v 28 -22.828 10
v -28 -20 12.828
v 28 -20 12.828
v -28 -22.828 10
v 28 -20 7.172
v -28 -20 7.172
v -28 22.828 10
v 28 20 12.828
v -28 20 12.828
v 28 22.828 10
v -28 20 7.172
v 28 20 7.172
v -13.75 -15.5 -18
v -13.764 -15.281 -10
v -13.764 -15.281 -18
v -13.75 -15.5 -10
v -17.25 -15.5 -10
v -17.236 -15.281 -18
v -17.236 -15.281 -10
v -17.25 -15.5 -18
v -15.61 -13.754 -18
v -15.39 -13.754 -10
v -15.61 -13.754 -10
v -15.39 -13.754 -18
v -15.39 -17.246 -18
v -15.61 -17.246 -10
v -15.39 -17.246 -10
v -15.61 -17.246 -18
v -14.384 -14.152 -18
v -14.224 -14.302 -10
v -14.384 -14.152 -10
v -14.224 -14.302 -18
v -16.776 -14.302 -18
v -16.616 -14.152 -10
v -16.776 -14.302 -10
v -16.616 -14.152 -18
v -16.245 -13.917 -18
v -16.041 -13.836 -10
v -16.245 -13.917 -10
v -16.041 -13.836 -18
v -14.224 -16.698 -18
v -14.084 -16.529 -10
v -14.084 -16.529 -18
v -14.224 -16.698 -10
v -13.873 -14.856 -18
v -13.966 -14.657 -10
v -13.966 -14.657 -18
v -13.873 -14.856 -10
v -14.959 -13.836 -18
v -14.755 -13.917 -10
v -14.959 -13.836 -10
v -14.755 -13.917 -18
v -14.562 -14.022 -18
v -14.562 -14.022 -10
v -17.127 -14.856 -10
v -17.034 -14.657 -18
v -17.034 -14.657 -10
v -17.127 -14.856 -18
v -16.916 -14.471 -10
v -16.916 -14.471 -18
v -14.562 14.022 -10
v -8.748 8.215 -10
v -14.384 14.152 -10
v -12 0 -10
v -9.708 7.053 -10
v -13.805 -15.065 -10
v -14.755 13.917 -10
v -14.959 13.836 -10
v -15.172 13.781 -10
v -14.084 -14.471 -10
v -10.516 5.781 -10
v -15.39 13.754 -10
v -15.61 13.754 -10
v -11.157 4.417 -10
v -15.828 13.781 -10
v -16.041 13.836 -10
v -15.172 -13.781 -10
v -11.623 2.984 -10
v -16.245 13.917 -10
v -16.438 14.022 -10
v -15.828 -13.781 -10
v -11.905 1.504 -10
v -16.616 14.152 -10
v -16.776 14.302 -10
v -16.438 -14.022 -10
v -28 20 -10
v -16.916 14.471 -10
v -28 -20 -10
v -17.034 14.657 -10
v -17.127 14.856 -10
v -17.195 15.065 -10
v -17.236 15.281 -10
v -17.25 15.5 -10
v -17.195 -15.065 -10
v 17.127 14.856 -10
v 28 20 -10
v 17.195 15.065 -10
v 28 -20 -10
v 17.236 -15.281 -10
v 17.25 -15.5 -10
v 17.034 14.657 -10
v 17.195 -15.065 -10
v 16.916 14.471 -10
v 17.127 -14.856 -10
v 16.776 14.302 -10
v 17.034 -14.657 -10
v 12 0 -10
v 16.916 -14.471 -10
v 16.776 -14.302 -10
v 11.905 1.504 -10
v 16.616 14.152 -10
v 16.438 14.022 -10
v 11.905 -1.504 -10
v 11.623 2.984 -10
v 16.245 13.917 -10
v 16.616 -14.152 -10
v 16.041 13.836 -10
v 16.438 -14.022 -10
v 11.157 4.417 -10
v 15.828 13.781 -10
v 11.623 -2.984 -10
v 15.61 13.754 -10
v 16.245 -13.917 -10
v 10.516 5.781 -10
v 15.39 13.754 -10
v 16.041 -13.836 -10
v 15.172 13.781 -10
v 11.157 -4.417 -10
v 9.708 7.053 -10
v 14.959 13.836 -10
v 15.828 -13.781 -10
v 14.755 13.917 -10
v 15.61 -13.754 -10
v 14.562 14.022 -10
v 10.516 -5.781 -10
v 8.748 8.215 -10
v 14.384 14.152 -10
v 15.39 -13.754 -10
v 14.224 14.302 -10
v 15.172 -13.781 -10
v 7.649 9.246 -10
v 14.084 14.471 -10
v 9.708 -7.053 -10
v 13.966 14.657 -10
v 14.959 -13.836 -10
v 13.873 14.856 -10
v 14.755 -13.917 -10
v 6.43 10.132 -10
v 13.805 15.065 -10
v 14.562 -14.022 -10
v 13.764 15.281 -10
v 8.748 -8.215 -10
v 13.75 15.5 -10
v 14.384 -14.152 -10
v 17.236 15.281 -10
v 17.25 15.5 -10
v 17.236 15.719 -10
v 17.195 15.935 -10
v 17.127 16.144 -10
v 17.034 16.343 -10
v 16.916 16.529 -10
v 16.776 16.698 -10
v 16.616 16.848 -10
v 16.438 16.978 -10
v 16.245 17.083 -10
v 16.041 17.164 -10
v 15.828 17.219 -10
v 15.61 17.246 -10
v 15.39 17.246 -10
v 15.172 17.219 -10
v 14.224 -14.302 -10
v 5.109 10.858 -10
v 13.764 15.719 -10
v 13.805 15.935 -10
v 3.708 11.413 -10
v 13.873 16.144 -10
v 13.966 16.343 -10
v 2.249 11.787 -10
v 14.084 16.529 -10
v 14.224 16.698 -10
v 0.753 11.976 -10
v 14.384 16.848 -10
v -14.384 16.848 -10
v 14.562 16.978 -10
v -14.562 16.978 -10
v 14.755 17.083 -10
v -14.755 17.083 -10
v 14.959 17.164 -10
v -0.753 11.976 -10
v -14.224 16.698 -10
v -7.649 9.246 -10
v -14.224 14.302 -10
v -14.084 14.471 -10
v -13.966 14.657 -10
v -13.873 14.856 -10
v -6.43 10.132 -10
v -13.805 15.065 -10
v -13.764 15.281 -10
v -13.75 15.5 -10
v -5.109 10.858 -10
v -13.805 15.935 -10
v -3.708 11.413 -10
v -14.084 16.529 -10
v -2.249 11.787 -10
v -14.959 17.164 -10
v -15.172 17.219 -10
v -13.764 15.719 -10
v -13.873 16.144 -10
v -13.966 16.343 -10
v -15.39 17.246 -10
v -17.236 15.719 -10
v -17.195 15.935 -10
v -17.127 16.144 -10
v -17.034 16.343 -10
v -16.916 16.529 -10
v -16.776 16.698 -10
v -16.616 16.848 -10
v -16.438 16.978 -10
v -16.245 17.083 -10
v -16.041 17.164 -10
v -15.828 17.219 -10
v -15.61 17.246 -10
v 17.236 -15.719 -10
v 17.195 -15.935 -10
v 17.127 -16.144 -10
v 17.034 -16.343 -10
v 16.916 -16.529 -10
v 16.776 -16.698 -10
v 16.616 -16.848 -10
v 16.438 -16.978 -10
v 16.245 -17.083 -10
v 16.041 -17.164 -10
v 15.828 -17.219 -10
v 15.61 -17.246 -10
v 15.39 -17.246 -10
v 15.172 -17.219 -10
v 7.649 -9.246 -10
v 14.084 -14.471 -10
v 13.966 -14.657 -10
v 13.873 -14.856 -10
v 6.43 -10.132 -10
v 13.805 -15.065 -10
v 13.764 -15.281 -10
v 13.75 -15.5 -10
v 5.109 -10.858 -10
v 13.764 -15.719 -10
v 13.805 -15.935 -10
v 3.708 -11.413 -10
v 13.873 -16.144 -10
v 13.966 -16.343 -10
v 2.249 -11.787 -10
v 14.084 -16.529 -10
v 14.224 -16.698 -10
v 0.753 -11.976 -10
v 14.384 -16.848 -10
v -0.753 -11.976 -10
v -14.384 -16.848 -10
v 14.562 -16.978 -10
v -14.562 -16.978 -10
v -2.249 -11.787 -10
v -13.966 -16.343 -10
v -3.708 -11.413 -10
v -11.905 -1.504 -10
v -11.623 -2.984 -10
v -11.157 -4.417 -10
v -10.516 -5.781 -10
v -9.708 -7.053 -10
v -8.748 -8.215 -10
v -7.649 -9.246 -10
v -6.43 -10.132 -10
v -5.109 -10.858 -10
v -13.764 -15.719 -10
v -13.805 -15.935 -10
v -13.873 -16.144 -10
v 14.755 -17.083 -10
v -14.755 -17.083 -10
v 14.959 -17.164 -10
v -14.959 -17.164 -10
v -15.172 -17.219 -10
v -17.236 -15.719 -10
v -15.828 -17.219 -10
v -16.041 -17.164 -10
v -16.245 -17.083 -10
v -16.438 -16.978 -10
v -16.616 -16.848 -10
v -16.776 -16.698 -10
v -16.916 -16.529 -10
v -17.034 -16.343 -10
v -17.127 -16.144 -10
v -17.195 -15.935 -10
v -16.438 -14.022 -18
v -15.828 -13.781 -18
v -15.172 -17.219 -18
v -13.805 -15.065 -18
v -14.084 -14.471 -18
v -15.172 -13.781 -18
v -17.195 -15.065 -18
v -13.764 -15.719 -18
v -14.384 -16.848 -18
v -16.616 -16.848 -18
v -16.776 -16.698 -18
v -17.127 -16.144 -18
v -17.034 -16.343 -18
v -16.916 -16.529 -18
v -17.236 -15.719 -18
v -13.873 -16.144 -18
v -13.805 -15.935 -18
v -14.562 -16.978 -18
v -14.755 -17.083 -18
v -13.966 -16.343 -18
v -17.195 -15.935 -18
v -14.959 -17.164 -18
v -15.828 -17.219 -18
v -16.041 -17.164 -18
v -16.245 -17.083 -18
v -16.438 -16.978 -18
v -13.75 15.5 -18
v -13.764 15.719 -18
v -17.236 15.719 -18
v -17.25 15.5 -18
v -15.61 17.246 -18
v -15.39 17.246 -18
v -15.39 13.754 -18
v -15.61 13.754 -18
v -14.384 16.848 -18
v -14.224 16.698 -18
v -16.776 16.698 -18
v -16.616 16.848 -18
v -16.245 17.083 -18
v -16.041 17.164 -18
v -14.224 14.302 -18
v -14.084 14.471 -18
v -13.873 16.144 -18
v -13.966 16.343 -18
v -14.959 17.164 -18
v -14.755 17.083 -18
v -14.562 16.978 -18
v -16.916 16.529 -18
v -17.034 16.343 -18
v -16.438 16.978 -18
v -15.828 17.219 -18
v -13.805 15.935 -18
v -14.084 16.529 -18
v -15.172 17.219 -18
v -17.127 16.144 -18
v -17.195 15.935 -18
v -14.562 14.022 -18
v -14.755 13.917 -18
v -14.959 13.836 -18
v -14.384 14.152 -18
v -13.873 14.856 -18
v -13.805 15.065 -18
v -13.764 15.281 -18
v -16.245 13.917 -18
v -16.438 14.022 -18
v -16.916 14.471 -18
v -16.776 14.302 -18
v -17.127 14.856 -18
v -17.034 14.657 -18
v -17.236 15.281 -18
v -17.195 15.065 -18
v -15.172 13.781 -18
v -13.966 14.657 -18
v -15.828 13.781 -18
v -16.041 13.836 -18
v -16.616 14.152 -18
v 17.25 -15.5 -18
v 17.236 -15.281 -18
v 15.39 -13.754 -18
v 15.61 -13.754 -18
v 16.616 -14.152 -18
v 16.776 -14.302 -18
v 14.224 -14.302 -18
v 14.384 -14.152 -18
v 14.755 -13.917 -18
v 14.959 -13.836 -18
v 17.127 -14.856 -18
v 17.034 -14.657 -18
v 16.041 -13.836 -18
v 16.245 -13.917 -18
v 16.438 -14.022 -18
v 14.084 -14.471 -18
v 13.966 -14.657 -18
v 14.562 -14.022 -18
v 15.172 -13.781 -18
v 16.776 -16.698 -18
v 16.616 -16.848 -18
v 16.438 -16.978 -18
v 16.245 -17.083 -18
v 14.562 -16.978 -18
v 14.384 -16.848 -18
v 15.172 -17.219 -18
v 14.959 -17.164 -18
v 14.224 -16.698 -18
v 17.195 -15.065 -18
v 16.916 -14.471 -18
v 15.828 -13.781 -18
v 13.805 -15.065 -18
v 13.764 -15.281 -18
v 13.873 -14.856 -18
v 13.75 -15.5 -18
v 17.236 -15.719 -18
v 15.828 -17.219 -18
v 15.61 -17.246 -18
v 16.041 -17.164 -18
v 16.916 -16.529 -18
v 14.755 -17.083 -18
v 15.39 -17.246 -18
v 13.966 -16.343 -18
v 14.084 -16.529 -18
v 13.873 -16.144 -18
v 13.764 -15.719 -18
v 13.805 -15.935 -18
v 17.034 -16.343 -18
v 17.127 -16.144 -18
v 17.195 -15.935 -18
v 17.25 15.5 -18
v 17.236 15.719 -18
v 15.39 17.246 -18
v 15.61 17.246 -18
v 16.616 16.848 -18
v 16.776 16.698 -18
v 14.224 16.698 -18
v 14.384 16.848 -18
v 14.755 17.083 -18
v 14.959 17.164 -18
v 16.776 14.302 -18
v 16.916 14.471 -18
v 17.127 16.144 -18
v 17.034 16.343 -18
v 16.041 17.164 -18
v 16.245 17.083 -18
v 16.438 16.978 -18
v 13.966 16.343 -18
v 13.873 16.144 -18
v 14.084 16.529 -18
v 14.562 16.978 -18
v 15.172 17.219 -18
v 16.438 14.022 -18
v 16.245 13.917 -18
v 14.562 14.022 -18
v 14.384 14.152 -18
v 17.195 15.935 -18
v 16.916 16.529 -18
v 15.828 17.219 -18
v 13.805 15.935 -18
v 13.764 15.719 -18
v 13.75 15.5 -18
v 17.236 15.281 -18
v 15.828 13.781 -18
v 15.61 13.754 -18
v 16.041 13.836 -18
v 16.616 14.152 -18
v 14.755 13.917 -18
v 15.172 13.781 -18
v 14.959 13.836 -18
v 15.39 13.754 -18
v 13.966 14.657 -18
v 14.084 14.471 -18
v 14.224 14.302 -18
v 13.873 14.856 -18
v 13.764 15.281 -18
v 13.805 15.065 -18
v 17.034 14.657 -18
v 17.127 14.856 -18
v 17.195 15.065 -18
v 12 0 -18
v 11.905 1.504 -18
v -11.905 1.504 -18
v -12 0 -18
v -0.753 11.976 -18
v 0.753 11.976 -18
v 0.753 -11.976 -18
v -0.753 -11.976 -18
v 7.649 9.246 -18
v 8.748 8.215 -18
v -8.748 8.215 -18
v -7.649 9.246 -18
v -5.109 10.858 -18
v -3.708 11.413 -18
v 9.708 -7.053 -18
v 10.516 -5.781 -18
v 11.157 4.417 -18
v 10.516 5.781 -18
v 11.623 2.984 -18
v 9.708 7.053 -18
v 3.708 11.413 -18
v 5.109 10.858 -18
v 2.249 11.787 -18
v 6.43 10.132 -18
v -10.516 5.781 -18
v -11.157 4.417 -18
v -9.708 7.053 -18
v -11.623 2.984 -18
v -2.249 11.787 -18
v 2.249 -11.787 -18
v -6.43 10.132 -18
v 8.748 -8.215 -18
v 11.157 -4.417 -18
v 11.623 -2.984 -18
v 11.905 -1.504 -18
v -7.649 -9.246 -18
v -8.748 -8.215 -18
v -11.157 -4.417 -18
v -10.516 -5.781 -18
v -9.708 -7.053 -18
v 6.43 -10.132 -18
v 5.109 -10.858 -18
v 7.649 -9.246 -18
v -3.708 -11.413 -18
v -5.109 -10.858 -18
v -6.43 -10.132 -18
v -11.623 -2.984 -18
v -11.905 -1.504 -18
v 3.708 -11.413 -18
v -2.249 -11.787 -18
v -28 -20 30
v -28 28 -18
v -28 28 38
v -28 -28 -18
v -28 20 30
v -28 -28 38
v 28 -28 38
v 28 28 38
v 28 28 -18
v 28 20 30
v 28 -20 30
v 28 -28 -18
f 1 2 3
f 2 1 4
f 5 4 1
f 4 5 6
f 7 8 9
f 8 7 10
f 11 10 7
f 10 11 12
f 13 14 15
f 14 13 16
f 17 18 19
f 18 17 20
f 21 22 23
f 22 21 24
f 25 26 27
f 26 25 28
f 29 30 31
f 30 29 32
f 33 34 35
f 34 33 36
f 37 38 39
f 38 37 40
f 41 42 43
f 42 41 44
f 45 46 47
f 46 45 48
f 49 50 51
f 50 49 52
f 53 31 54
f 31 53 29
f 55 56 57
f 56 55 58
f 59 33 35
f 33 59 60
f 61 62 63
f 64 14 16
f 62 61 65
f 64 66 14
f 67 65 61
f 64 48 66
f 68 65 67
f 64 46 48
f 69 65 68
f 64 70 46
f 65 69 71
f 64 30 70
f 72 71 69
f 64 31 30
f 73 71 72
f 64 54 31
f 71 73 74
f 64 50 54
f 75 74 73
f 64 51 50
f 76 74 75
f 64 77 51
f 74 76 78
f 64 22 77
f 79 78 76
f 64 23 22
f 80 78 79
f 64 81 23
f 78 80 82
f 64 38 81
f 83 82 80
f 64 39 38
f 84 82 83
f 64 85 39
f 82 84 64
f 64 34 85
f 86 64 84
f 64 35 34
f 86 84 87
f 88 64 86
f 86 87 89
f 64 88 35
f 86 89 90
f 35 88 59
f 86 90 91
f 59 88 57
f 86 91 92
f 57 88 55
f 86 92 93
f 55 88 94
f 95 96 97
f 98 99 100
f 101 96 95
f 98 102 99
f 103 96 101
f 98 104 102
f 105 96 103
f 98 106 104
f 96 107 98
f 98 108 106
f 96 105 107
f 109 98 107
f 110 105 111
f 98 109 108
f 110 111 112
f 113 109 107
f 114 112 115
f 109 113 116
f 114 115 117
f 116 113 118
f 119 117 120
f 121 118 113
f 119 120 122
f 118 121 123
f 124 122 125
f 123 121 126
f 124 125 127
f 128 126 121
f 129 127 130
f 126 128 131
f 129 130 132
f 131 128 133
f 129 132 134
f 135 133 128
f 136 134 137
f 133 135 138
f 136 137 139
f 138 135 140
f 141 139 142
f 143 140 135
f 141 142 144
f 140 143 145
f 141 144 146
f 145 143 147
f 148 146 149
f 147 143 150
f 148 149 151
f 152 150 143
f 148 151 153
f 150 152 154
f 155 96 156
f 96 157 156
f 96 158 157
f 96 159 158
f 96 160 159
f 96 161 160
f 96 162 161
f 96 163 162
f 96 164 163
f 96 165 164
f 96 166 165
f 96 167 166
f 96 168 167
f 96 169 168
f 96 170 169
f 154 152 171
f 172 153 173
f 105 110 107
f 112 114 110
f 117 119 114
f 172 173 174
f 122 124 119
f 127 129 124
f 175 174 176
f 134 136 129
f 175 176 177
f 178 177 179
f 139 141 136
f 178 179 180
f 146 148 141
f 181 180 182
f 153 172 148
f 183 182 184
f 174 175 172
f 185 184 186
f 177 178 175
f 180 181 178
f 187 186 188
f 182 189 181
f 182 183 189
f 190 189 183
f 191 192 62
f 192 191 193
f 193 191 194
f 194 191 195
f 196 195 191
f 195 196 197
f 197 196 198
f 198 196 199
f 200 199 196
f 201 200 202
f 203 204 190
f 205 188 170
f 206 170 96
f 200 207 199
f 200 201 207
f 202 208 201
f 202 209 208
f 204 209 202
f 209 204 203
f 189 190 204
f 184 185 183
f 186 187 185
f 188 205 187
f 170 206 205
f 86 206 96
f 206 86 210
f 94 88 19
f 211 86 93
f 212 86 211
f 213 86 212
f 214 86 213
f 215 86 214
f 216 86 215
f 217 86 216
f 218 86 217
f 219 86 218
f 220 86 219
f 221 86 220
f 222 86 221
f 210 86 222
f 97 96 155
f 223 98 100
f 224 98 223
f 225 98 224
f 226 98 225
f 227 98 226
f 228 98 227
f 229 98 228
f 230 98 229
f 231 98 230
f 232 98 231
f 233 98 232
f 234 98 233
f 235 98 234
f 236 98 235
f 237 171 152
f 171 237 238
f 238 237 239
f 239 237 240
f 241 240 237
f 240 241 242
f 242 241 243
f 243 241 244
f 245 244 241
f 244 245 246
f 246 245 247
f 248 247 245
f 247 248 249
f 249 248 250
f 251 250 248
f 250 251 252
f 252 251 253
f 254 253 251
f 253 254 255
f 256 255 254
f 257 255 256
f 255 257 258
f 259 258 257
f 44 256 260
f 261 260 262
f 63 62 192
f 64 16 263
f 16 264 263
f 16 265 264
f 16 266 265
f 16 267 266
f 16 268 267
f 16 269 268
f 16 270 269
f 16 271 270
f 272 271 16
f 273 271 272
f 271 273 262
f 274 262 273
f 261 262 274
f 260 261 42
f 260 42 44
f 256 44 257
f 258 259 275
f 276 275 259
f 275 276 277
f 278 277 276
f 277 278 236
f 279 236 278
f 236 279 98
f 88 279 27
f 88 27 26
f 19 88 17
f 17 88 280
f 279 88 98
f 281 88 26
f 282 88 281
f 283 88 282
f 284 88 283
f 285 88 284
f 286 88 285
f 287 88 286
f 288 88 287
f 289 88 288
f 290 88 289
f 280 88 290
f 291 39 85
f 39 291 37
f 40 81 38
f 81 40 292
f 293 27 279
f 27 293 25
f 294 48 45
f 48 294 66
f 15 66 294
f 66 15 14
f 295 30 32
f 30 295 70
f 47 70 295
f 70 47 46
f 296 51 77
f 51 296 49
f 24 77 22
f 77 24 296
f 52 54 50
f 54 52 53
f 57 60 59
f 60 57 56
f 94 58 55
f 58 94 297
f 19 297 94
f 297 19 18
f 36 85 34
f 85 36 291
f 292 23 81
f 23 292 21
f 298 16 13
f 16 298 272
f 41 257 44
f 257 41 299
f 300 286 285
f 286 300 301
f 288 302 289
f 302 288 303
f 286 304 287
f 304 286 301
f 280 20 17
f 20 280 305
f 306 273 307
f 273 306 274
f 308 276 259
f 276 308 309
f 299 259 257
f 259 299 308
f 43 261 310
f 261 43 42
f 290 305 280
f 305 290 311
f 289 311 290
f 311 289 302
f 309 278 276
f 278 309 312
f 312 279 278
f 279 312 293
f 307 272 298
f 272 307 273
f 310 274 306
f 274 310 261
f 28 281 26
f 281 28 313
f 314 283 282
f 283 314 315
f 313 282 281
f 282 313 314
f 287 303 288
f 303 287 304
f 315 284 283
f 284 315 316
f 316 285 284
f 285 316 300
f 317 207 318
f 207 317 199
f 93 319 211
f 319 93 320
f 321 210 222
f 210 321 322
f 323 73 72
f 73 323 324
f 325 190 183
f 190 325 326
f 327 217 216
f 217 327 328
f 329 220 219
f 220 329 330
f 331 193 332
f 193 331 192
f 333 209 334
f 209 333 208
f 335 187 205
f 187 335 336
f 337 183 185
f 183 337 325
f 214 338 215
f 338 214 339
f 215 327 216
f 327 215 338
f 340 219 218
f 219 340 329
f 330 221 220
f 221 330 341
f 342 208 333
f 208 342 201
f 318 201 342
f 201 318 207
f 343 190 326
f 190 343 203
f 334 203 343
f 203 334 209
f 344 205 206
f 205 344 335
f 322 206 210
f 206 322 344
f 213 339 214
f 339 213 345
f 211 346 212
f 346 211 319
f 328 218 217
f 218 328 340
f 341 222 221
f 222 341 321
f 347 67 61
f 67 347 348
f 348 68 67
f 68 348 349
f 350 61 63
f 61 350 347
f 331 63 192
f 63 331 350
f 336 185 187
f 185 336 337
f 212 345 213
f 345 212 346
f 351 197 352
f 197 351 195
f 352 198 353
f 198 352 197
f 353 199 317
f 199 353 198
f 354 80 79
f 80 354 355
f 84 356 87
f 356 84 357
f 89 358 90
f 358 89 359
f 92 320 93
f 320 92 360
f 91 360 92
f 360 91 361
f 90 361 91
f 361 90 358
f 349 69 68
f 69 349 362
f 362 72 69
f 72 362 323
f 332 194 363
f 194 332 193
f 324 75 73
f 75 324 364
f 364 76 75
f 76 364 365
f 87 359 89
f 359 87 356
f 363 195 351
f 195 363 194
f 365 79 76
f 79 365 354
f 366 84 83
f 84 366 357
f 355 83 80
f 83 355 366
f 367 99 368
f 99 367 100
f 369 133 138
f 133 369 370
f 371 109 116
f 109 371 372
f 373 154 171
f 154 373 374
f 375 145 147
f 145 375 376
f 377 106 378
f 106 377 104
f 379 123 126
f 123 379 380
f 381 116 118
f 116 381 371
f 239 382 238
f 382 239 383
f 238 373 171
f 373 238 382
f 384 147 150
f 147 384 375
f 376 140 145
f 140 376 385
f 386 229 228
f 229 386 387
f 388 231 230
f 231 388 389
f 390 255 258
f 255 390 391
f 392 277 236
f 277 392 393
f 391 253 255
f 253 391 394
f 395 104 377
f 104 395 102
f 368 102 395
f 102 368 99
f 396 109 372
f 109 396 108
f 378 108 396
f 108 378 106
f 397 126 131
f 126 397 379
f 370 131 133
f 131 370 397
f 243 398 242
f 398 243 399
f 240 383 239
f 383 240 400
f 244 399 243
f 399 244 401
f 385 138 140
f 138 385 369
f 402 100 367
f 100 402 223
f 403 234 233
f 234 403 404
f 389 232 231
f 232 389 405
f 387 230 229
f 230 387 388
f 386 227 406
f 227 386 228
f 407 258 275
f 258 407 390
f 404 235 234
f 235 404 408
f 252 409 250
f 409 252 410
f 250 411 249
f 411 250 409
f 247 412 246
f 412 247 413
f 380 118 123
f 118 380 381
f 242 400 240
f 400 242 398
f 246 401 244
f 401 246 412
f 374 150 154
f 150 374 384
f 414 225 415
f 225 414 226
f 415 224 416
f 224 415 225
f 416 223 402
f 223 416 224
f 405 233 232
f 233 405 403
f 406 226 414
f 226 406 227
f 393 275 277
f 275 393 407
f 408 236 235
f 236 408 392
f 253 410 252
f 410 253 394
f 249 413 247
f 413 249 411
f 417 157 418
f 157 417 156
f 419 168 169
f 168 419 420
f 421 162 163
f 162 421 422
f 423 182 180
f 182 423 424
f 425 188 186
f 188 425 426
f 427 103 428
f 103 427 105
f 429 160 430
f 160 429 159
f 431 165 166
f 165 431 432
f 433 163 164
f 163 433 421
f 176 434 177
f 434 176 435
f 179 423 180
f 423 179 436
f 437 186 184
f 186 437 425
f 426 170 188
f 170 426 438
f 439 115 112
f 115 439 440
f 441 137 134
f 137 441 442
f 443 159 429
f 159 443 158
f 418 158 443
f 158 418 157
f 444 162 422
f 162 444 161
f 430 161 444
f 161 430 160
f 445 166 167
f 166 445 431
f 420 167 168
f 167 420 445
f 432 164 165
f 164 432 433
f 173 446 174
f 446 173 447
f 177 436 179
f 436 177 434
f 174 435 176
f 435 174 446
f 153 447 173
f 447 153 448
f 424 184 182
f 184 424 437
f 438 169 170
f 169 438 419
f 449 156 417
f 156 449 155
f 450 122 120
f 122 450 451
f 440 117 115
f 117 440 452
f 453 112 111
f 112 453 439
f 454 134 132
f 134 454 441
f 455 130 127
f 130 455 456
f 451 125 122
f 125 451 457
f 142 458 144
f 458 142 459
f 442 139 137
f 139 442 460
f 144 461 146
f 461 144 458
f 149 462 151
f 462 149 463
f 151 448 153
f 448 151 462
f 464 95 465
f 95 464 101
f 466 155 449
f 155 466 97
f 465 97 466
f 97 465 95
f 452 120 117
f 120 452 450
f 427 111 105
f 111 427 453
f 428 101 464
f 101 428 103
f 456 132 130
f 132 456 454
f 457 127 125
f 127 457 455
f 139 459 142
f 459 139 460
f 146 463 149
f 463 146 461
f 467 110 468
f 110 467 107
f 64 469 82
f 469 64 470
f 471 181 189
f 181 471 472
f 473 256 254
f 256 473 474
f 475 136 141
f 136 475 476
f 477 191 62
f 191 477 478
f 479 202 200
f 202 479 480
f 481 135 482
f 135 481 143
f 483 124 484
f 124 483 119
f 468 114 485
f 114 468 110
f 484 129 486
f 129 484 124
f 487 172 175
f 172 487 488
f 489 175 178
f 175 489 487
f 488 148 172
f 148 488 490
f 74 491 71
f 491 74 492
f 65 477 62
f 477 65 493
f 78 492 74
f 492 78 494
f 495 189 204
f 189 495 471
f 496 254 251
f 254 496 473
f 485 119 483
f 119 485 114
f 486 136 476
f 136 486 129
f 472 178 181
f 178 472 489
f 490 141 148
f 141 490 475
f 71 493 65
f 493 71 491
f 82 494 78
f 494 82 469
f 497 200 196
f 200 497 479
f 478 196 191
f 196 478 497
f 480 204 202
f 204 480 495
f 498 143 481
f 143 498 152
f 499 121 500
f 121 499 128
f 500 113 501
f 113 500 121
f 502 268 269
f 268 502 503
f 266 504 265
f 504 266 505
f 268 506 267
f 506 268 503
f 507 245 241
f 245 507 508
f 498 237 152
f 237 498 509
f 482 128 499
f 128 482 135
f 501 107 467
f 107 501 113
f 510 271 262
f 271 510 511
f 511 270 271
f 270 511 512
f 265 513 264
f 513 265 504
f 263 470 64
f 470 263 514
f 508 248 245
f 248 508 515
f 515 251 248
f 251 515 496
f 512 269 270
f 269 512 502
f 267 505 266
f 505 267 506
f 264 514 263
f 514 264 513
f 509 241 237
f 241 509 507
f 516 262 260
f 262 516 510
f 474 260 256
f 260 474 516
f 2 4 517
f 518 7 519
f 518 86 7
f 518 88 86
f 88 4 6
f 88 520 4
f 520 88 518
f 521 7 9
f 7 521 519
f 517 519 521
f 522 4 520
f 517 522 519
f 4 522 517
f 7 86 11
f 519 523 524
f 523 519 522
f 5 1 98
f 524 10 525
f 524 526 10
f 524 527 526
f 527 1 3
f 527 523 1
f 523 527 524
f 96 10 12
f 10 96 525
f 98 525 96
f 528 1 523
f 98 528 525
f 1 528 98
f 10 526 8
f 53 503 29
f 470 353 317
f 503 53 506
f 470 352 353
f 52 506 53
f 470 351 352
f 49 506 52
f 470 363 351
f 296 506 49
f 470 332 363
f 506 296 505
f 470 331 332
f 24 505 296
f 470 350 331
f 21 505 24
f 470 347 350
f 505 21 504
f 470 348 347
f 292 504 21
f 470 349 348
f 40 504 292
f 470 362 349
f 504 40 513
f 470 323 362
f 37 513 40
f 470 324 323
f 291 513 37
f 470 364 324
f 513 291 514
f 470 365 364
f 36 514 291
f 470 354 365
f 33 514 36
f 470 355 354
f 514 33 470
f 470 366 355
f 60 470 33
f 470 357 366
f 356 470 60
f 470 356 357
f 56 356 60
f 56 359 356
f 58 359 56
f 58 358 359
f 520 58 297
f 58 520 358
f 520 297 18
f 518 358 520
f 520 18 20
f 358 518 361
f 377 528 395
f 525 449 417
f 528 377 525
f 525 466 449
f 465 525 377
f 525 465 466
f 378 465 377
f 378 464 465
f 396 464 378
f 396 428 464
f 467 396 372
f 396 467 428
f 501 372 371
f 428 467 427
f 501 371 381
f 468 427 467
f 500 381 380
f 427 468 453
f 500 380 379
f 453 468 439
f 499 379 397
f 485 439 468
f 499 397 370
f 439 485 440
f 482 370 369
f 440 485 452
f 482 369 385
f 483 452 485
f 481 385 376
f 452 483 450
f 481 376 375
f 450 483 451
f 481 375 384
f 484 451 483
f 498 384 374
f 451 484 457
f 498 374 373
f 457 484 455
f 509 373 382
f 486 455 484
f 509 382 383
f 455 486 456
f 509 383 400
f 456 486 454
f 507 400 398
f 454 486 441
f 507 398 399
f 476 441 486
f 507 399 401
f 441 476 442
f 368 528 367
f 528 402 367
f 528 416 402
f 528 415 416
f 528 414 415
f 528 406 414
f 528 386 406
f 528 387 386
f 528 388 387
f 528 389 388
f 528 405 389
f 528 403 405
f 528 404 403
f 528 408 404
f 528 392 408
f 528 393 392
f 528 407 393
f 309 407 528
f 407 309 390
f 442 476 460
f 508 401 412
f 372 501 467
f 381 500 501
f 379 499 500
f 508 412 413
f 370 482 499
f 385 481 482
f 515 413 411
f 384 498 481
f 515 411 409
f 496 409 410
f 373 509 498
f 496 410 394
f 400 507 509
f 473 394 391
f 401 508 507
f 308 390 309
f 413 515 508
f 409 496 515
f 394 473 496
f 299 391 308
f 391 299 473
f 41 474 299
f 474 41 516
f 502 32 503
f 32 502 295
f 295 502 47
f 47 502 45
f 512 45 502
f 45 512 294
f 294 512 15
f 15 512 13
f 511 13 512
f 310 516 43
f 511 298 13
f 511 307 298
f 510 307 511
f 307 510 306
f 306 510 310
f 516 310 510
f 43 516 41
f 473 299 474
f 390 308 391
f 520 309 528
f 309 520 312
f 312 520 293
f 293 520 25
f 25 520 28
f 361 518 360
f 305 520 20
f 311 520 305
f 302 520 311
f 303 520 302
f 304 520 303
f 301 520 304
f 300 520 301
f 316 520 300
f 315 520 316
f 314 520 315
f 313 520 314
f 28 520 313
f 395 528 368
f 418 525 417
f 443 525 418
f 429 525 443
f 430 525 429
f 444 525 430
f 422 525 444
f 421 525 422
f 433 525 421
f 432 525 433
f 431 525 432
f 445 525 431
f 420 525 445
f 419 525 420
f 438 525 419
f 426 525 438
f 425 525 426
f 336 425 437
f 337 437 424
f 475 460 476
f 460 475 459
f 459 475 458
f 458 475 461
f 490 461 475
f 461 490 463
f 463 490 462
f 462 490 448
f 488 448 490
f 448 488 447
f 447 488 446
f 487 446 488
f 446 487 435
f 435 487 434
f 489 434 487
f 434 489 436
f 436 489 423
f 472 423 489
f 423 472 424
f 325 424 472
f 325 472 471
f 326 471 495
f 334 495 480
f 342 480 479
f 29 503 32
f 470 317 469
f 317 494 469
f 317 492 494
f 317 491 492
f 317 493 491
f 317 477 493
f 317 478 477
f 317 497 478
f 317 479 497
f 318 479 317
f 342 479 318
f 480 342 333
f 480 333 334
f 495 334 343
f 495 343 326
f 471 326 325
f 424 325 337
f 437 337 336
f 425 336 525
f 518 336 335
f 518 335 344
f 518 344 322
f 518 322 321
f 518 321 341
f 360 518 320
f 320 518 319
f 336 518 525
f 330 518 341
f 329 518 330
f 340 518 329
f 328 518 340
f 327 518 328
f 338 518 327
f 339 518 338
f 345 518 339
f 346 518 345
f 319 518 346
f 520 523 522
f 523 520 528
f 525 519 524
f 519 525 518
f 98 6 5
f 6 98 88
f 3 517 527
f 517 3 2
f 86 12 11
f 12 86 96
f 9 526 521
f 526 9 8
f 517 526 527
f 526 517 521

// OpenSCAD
$fn = 50; 


difference() {
    
    translate( [0,0,10] ) cube( [ 56, 56, 56 ], center=true ); // outside 
    
    //makerslide
    color([0,0,0,0.1]) cube( [ 100, 40, 20 ], center=true );
    color([0,0,0,0.1]) translate( [0,0,20] ) cube( [ 100, 40, 20 ], center=true );
    color([0,0,0,0.1]) for (i=[-1,1]) translate([0,i*20,10]) rotate( [45,0,0] ) cube( [100, 4, 4], center=true);
       
   union() {
        translate([0,0,-20]) cylinder( r=12, h=20, center=true ); // center hole
        for (i=[-1,1]) {
            for (j=[-1,1]) {
                translate( [15.5*i, 15.5*j, -20] ) cylinder( r=1.75, h=20, center=true ); // center hole
            }
        }
    } 
    
    
}

//translate( [0,0,36] ) 
//difference() { //mount 
//    translate( [0, 0, 0 ] ) cube( [46,46,4], center=true ); // mount
//    union() {
//        translate() cylinder( r=12, h=10, center=true ); // center hole
//        for (i=[-1,1]) {
//            for (j=[-1,1]) {
//                translate( [15.5*i, 15.5*j, 0] ) cylinder( r=1.75, h=10, center=true ); // center hole
//            }
//        }
//    }
    
//}
